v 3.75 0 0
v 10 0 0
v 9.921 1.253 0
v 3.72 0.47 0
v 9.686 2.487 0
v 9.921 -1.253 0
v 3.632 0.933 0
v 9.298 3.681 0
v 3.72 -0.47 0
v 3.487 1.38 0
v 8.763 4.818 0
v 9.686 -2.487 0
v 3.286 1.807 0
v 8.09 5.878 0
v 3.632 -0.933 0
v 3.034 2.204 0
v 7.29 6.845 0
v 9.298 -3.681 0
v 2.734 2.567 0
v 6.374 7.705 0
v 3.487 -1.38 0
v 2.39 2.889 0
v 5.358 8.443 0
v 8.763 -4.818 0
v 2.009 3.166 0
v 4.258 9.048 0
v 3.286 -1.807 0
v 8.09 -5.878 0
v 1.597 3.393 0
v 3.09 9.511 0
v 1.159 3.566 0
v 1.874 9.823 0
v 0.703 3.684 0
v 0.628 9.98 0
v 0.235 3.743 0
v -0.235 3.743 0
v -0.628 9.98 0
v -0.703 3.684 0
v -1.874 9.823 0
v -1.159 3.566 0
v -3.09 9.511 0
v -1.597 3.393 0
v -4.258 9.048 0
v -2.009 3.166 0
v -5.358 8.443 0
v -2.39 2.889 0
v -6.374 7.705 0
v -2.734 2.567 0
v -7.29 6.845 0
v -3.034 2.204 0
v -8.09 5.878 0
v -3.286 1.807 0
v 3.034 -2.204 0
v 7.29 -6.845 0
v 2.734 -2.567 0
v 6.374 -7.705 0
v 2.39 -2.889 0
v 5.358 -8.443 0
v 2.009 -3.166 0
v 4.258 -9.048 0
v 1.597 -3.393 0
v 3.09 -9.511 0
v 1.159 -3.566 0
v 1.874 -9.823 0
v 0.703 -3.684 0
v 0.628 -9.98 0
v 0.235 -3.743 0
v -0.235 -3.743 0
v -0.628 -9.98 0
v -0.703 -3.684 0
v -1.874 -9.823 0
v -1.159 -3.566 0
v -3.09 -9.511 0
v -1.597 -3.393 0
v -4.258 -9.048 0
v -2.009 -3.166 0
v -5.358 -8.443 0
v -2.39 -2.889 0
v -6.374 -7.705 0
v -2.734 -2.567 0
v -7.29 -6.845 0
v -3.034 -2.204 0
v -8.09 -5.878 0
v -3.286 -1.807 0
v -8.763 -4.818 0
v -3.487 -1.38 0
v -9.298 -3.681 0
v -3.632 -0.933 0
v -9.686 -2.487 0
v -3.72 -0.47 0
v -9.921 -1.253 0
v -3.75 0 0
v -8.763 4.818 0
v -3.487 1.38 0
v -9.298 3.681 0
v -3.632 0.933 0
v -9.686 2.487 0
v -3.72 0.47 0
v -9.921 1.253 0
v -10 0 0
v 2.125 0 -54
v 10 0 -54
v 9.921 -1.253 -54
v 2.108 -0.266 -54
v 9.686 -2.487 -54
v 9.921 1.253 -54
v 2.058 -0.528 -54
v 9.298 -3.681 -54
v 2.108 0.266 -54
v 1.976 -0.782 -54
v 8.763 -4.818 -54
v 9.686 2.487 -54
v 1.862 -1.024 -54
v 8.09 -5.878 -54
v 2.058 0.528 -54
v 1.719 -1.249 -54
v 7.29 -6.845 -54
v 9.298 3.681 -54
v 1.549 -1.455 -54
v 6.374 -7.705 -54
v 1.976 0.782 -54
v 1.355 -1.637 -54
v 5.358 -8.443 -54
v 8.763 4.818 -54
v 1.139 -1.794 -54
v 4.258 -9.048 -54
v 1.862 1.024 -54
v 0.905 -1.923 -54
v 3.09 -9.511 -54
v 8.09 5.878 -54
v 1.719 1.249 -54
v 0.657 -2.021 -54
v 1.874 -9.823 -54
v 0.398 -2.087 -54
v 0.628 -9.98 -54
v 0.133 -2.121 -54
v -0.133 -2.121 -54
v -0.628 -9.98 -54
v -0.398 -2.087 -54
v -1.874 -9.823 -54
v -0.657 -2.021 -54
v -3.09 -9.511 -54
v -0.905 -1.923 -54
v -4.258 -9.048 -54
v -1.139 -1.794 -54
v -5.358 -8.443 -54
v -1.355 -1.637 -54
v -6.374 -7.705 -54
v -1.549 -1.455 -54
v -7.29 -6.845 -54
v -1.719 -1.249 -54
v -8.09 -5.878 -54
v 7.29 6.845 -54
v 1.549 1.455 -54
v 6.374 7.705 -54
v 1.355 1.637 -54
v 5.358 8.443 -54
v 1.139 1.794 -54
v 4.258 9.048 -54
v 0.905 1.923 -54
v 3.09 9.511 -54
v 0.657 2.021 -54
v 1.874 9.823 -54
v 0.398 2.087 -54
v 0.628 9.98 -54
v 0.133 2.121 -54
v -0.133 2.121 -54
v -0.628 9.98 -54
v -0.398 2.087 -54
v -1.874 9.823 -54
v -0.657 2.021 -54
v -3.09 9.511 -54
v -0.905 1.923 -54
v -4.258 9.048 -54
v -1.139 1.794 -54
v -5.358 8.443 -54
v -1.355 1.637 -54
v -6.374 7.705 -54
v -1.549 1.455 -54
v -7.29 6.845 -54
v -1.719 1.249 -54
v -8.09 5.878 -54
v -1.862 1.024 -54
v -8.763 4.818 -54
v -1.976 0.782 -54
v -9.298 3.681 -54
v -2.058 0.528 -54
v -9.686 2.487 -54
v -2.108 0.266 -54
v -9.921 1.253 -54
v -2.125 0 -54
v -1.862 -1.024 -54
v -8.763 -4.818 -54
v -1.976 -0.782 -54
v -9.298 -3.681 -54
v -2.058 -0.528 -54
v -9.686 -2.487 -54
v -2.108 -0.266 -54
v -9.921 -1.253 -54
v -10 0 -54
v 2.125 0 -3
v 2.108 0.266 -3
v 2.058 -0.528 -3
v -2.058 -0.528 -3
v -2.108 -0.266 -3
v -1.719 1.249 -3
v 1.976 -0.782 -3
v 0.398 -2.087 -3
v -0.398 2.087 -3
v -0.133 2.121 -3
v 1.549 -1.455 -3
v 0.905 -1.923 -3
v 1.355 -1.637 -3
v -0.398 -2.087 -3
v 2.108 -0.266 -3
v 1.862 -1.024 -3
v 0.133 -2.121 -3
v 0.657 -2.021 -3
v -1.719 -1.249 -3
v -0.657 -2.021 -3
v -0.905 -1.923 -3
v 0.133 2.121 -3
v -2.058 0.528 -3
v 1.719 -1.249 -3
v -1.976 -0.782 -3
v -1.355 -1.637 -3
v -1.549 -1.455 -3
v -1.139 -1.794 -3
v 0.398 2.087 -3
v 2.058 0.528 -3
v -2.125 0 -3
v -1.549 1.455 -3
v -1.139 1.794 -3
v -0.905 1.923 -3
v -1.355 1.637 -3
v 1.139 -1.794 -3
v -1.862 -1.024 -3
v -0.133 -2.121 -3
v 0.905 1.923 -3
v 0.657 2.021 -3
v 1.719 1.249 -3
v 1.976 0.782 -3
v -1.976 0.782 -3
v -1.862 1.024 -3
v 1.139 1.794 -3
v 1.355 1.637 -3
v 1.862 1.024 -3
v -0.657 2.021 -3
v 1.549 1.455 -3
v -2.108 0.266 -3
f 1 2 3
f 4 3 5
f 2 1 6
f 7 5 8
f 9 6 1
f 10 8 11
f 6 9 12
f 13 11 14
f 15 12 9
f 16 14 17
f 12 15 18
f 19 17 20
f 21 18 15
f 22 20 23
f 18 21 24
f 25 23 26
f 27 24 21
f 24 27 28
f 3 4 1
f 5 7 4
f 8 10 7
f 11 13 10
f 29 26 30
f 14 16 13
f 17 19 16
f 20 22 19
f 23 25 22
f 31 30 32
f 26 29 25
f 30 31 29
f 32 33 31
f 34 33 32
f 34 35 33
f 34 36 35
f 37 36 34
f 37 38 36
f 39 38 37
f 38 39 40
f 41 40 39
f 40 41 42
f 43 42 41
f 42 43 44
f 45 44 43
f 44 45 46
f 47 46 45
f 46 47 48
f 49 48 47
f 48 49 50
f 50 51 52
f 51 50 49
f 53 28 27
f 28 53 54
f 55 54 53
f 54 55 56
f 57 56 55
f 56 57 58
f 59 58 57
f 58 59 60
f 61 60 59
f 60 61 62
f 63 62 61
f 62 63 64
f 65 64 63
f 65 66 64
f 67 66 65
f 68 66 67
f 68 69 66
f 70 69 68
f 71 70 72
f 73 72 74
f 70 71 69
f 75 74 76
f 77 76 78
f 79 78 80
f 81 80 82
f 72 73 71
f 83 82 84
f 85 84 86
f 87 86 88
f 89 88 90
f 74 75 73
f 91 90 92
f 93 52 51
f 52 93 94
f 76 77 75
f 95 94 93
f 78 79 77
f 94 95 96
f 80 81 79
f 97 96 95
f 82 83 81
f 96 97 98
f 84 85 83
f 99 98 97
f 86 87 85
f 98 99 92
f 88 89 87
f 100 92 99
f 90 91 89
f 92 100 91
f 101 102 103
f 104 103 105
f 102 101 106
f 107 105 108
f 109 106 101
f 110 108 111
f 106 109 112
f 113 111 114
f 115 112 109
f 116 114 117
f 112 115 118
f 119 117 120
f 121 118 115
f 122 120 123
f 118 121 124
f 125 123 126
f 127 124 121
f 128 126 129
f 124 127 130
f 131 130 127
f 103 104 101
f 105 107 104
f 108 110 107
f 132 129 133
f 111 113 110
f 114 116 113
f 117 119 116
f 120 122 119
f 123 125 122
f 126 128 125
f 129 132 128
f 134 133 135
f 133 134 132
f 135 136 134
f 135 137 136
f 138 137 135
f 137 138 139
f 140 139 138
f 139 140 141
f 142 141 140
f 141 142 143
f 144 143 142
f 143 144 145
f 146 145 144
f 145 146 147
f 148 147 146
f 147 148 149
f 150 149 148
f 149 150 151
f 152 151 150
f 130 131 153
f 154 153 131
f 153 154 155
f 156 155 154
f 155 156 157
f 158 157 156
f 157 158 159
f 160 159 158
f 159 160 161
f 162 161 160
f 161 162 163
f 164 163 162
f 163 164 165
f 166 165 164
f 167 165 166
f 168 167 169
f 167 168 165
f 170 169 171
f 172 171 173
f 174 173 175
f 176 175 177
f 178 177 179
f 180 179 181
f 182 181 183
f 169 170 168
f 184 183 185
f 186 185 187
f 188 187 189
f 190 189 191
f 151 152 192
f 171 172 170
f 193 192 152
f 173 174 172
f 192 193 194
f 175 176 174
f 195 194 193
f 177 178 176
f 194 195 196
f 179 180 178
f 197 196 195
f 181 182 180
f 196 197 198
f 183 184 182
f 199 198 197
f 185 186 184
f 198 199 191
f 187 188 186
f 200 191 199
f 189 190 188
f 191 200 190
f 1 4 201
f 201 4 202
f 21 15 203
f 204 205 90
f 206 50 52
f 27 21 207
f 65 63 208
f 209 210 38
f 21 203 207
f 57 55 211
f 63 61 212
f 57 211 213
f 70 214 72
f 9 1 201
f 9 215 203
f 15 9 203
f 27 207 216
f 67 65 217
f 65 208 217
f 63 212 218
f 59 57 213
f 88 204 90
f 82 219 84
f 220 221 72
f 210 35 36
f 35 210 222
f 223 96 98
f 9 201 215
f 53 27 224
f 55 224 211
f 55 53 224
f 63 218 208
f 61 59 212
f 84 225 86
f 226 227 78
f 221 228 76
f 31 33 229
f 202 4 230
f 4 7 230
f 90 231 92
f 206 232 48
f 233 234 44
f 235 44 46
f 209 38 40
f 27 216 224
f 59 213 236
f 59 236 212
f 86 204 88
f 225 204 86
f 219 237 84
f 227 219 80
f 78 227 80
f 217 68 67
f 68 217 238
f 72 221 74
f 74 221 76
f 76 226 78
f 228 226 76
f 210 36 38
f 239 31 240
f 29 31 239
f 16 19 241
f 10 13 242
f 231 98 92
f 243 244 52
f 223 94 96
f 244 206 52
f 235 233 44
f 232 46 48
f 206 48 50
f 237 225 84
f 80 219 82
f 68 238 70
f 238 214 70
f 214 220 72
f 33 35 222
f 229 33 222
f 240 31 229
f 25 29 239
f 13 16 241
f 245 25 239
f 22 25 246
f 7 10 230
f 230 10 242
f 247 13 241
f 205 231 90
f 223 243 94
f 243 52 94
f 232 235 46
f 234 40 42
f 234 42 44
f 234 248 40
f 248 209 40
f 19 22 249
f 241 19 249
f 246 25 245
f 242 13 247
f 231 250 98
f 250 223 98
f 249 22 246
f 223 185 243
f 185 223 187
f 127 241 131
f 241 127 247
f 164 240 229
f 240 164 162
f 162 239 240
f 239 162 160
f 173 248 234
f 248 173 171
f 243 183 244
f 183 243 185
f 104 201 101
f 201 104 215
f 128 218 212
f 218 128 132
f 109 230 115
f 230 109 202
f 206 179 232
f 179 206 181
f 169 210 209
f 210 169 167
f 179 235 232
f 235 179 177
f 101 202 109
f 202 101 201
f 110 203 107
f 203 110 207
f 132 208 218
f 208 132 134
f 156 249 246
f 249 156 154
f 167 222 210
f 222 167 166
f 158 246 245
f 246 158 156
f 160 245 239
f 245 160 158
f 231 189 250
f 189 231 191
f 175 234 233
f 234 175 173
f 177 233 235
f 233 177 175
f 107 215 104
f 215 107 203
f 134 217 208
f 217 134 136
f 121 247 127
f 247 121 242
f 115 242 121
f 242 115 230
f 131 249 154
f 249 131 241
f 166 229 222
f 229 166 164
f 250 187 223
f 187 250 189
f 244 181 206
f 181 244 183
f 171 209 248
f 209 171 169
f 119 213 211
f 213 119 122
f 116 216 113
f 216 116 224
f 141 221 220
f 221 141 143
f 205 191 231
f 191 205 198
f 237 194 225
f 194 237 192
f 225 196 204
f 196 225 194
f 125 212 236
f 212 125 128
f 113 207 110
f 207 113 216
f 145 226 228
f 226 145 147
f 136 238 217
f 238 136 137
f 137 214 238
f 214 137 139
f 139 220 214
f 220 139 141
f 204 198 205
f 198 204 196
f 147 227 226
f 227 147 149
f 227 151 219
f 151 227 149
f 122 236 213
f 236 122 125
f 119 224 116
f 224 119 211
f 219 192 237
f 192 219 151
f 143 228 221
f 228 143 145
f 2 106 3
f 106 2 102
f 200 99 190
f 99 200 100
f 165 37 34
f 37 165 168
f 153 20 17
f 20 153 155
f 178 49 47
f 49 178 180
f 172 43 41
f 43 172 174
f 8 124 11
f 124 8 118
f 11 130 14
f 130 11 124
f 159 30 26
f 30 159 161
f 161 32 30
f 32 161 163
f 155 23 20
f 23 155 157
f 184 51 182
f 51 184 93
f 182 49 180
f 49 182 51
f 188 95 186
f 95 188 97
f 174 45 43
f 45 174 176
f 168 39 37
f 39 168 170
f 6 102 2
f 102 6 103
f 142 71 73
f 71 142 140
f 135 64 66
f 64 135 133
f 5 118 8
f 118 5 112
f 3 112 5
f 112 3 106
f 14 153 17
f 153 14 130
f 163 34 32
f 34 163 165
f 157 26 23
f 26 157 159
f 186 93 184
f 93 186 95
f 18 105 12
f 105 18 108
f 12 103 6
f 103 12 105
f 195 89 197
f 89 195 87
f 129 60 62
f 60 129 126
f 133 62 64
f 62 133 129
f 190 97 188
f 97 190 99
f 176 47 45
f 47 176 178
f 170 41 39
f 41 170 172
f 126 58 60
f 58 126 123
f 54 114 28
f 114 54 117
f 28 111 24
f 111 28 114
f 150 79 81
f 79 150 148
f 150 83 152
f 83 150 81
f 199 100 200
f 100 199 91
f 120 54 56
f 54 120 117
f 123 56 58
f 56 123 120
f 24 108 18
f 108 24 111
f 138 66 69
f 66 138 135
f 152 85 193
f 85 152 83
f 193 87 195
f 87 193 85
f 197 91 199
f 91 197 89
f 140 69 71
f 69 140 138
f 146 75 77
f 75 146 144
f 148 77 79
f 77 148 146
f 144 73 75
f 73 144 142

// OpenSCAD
$fn = 50;


difference() {
	union() {
		translate(v = [0, 0, -54.0000000000]) {
			cylinder(h = 54, r = 10.0000000000);
		}
		cylinder(h = 0, r = 16.0000000000);
	}
	union() {
		translate(v = [0, 0, 0]) {
			rotate(a = [0, 0, 0]) {
				difference() {
					union() {
						#translate(v = [0, 0, -54.0000000000]) {
							cylinder(h = 54, r = 2.0000000000);
						}
						#translate(v = [0, 0, -3]) {
							cylinder(h = 3, r1 = 2.1250000000, r2 = 3.7500000000);
						}
						#translate(v = [0, 0, -54.0000000000]) {
							cylinder(h = 54, r = 2.1250000000);
						}
						#translate(v = [0, 0, -54.0000000000]) {
							cylinder(h = 54, r = 2.0000000000);
						}
					}
					union();
				}
			}
		}
	}
}
